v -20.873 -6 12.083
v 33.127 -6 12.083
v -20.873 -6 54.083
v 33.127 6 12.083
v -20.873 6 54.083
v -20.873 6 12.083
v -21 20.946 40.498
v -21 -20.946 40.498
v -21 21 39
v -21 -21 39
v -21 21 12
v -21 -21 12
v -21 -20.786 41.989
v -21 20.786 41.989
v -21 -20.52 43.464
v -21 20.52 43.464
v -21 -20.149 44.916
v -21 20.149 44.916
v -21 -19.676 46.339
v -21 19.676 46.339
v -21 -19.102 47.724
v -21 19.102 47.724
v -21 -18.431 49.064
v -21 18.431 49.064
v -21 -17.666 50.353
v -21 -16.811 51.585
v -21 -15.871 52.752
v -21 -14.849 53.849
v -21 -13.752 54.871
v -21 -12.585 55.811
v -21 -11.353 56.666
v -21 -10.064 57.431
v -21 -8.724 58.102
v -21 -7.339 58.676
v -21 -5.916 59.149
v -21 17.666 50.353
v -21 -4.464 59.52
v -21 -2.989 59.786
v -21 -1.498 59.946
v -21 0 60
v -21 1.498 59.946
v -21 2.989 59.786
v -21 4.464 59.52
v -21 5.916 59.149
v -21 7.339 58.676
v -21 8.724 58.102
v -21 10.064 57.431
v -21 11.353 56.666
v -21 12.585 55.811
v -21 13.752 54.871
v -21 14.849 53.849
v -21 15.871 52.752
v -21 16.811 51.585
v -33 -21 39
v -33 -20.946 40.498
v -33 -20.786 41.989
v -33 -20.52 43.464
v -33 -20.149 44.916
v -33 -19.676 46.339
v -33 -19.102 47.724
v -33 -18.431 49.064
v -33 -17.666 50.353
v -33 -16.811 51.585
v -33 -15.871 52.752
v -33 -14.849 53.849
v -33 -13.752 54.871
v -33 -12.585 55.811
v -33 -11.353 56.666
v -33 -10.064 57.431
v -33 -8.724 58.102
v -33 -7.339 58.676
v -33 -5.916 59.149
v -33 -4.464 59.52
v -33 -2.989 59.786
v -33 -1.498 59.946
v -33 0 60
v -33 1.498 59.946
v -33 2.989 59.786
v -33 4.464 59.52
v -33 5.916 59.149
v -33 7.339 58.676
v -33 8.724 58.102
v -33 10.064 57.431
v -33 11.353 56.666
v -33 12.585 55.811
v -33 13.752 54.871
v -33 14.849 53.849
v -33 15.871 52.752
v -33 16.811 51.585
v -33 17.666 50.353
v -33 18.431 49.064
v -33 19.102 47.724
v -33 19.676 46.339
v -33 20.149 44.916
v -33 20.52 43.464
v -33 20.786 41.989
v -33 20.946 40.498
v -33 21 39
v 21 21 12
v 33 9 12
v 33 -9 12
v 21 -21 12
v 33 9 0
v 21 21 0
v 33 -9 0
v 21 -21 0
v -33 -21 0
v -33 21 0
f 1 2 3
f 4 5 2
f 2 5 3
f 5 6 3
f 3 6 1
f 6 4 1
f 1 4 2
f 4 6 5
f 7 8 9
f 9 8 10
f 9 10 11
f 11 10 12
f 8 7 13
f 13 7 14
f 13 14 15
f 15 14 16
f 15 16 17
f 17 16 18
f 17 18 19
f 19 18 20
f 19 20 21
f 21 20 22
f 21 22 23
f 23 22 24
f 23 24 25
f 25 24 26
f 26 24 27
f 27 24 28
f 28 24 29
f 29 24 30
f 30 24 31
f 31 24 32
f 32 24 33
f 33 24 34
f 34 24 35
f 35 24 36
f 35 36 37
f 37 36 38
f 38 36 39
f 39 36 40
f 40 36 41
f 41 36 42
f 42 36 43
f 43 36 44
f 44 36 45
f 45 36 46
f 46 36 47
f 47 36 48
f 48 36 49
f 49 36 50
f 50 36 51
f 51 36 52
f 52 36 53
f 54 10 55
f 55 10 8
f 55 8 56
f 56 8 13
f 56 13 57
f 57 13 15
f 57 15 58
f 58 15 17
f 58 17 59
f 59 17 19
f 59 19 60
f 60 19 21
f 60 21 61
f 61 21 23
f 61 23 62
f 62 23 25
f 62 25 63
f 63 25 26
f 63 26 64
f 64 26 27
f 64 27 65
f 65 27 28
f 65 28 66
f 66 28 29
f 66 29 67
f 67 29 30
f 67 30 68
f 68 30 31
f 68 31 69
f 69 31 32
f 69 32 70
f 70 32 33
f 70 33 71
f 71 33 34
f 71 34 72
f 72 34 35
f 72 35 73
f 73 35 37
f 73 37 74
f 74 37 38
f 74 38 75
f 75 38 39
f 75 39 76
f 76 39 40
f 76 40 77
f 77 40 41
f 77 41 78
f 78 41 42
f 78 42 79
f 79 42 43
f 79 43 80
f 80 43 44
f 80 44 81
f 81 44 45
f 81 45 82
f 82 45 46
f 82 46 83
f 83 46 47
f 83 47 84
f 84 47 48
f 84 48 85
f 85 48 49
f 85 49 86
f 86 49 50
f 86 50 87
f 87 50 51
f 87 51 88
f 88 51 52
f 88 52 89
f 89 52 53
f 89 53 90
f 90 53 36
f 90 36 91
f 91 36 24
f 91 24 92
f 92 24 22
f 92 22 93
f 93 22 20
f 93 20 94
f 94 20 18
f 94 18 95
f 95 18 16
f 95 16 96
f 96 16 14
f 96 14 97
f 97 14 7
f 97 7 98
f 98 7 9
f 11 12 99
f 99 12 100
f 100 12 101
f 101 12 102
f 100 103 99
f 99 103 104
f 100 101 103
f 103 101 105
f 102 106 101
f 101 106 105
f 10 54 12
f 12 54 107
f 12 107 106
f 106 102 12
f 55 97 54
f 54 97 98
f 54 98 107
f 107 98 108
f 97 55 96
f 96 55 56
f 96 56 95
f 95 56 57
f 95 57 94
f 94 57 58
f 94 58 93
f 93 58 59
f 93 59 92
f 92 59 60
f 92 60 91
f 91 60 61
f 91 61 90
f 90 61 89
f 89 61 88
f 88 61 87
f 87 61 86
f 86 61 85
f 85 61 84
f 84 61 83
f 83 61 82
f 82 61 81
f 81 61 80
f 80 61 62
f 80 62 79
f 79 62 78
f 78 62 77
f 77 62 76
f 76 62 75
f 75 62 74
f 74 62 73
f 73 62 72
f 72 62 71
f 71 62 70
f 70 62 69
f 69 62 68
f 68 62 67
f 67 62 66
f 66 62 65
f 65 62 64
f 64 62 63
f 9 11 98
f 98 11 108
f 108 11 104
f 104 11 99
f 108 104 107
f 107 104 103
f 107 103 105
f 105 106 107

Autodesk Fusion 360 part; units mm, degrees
sketch "Sketch1" plane through (0, 0, 0) normal (0, 0, 1) x (1, 0, 0)
  line L0 (33, 21) -> (-33, 21)
  line L1 (-33, 21) -> (-33, -21)
  line L2 (-33, -21) -> (33, -21)
  line L3 (33, -21) -> (33, 21)
  line L4 (33, 21) -> (-33, -21) construction
  line L5 (-33, 21) -> (33, -21) construction
  dimension "d1" = 66
  dimension "d2" = 42
extrude "Extrude1" add sketch "Sketch1" along normal blind 12 makes body 1
chamfer "Chamfer1" distance 12 angle 45 2 edges at (33, -21, 6) (33, 21, 6) on bodies 1
sketch "Sketch2" plane through (0, 0, 12) normal (0, 0, 1) x (-1, 0, 0)
  line L0 (-33, -9) -> (-21, -21)
  line L1 (-21, -21) -> (33, -21)
  line L2 (33, -21) -> (33, 21)
  line L3 (33, 21) -> (-21, 21)
  line L4 (-21, 21) -> (-33, 9)
  line L5 (-33, 9) -> (-33, -9)
  line L6 (33, -21) -> (21, -21)
  line L7 (21, -21) -> (21, 21)
  line L8 (21, 21) -> (33, 21)
  line L9 (33, 21) -> (33, -21)
  dimension "d6" = 12
extrude "Extrude2" add sketch "Sketch2" along normal blind 48 contours L1 L2 L3 L6 L7 L8 L9 bodies 1
fillet "Fillet1" radius 21 2 edges at (-27, -21, 60) (-27, 21, 60) on bodies 1
sketch "Sketch3" plane through (0, 0, 0) normal (0, 1, 0) x (1, 0, 0)
  line L0 (-20.8733, -54.0829) -> (-20.8733, -12.0829)
  line L1 (-20.8733, -12.0829) -> (33.1267, -12.0829)
  line L2 (33.1267, -12.0829) -> (-20.8733, -54.0829)
  dimension "d11" = 42
  dimension "d12" = 54
extrude "Extrude3" add sketch "Sketch3" along normal mid plane 12 separate body makes body 2
equation "d7 = 60 mm - 12 mm"
equation "d12 = 66 mm - 12 mm"
